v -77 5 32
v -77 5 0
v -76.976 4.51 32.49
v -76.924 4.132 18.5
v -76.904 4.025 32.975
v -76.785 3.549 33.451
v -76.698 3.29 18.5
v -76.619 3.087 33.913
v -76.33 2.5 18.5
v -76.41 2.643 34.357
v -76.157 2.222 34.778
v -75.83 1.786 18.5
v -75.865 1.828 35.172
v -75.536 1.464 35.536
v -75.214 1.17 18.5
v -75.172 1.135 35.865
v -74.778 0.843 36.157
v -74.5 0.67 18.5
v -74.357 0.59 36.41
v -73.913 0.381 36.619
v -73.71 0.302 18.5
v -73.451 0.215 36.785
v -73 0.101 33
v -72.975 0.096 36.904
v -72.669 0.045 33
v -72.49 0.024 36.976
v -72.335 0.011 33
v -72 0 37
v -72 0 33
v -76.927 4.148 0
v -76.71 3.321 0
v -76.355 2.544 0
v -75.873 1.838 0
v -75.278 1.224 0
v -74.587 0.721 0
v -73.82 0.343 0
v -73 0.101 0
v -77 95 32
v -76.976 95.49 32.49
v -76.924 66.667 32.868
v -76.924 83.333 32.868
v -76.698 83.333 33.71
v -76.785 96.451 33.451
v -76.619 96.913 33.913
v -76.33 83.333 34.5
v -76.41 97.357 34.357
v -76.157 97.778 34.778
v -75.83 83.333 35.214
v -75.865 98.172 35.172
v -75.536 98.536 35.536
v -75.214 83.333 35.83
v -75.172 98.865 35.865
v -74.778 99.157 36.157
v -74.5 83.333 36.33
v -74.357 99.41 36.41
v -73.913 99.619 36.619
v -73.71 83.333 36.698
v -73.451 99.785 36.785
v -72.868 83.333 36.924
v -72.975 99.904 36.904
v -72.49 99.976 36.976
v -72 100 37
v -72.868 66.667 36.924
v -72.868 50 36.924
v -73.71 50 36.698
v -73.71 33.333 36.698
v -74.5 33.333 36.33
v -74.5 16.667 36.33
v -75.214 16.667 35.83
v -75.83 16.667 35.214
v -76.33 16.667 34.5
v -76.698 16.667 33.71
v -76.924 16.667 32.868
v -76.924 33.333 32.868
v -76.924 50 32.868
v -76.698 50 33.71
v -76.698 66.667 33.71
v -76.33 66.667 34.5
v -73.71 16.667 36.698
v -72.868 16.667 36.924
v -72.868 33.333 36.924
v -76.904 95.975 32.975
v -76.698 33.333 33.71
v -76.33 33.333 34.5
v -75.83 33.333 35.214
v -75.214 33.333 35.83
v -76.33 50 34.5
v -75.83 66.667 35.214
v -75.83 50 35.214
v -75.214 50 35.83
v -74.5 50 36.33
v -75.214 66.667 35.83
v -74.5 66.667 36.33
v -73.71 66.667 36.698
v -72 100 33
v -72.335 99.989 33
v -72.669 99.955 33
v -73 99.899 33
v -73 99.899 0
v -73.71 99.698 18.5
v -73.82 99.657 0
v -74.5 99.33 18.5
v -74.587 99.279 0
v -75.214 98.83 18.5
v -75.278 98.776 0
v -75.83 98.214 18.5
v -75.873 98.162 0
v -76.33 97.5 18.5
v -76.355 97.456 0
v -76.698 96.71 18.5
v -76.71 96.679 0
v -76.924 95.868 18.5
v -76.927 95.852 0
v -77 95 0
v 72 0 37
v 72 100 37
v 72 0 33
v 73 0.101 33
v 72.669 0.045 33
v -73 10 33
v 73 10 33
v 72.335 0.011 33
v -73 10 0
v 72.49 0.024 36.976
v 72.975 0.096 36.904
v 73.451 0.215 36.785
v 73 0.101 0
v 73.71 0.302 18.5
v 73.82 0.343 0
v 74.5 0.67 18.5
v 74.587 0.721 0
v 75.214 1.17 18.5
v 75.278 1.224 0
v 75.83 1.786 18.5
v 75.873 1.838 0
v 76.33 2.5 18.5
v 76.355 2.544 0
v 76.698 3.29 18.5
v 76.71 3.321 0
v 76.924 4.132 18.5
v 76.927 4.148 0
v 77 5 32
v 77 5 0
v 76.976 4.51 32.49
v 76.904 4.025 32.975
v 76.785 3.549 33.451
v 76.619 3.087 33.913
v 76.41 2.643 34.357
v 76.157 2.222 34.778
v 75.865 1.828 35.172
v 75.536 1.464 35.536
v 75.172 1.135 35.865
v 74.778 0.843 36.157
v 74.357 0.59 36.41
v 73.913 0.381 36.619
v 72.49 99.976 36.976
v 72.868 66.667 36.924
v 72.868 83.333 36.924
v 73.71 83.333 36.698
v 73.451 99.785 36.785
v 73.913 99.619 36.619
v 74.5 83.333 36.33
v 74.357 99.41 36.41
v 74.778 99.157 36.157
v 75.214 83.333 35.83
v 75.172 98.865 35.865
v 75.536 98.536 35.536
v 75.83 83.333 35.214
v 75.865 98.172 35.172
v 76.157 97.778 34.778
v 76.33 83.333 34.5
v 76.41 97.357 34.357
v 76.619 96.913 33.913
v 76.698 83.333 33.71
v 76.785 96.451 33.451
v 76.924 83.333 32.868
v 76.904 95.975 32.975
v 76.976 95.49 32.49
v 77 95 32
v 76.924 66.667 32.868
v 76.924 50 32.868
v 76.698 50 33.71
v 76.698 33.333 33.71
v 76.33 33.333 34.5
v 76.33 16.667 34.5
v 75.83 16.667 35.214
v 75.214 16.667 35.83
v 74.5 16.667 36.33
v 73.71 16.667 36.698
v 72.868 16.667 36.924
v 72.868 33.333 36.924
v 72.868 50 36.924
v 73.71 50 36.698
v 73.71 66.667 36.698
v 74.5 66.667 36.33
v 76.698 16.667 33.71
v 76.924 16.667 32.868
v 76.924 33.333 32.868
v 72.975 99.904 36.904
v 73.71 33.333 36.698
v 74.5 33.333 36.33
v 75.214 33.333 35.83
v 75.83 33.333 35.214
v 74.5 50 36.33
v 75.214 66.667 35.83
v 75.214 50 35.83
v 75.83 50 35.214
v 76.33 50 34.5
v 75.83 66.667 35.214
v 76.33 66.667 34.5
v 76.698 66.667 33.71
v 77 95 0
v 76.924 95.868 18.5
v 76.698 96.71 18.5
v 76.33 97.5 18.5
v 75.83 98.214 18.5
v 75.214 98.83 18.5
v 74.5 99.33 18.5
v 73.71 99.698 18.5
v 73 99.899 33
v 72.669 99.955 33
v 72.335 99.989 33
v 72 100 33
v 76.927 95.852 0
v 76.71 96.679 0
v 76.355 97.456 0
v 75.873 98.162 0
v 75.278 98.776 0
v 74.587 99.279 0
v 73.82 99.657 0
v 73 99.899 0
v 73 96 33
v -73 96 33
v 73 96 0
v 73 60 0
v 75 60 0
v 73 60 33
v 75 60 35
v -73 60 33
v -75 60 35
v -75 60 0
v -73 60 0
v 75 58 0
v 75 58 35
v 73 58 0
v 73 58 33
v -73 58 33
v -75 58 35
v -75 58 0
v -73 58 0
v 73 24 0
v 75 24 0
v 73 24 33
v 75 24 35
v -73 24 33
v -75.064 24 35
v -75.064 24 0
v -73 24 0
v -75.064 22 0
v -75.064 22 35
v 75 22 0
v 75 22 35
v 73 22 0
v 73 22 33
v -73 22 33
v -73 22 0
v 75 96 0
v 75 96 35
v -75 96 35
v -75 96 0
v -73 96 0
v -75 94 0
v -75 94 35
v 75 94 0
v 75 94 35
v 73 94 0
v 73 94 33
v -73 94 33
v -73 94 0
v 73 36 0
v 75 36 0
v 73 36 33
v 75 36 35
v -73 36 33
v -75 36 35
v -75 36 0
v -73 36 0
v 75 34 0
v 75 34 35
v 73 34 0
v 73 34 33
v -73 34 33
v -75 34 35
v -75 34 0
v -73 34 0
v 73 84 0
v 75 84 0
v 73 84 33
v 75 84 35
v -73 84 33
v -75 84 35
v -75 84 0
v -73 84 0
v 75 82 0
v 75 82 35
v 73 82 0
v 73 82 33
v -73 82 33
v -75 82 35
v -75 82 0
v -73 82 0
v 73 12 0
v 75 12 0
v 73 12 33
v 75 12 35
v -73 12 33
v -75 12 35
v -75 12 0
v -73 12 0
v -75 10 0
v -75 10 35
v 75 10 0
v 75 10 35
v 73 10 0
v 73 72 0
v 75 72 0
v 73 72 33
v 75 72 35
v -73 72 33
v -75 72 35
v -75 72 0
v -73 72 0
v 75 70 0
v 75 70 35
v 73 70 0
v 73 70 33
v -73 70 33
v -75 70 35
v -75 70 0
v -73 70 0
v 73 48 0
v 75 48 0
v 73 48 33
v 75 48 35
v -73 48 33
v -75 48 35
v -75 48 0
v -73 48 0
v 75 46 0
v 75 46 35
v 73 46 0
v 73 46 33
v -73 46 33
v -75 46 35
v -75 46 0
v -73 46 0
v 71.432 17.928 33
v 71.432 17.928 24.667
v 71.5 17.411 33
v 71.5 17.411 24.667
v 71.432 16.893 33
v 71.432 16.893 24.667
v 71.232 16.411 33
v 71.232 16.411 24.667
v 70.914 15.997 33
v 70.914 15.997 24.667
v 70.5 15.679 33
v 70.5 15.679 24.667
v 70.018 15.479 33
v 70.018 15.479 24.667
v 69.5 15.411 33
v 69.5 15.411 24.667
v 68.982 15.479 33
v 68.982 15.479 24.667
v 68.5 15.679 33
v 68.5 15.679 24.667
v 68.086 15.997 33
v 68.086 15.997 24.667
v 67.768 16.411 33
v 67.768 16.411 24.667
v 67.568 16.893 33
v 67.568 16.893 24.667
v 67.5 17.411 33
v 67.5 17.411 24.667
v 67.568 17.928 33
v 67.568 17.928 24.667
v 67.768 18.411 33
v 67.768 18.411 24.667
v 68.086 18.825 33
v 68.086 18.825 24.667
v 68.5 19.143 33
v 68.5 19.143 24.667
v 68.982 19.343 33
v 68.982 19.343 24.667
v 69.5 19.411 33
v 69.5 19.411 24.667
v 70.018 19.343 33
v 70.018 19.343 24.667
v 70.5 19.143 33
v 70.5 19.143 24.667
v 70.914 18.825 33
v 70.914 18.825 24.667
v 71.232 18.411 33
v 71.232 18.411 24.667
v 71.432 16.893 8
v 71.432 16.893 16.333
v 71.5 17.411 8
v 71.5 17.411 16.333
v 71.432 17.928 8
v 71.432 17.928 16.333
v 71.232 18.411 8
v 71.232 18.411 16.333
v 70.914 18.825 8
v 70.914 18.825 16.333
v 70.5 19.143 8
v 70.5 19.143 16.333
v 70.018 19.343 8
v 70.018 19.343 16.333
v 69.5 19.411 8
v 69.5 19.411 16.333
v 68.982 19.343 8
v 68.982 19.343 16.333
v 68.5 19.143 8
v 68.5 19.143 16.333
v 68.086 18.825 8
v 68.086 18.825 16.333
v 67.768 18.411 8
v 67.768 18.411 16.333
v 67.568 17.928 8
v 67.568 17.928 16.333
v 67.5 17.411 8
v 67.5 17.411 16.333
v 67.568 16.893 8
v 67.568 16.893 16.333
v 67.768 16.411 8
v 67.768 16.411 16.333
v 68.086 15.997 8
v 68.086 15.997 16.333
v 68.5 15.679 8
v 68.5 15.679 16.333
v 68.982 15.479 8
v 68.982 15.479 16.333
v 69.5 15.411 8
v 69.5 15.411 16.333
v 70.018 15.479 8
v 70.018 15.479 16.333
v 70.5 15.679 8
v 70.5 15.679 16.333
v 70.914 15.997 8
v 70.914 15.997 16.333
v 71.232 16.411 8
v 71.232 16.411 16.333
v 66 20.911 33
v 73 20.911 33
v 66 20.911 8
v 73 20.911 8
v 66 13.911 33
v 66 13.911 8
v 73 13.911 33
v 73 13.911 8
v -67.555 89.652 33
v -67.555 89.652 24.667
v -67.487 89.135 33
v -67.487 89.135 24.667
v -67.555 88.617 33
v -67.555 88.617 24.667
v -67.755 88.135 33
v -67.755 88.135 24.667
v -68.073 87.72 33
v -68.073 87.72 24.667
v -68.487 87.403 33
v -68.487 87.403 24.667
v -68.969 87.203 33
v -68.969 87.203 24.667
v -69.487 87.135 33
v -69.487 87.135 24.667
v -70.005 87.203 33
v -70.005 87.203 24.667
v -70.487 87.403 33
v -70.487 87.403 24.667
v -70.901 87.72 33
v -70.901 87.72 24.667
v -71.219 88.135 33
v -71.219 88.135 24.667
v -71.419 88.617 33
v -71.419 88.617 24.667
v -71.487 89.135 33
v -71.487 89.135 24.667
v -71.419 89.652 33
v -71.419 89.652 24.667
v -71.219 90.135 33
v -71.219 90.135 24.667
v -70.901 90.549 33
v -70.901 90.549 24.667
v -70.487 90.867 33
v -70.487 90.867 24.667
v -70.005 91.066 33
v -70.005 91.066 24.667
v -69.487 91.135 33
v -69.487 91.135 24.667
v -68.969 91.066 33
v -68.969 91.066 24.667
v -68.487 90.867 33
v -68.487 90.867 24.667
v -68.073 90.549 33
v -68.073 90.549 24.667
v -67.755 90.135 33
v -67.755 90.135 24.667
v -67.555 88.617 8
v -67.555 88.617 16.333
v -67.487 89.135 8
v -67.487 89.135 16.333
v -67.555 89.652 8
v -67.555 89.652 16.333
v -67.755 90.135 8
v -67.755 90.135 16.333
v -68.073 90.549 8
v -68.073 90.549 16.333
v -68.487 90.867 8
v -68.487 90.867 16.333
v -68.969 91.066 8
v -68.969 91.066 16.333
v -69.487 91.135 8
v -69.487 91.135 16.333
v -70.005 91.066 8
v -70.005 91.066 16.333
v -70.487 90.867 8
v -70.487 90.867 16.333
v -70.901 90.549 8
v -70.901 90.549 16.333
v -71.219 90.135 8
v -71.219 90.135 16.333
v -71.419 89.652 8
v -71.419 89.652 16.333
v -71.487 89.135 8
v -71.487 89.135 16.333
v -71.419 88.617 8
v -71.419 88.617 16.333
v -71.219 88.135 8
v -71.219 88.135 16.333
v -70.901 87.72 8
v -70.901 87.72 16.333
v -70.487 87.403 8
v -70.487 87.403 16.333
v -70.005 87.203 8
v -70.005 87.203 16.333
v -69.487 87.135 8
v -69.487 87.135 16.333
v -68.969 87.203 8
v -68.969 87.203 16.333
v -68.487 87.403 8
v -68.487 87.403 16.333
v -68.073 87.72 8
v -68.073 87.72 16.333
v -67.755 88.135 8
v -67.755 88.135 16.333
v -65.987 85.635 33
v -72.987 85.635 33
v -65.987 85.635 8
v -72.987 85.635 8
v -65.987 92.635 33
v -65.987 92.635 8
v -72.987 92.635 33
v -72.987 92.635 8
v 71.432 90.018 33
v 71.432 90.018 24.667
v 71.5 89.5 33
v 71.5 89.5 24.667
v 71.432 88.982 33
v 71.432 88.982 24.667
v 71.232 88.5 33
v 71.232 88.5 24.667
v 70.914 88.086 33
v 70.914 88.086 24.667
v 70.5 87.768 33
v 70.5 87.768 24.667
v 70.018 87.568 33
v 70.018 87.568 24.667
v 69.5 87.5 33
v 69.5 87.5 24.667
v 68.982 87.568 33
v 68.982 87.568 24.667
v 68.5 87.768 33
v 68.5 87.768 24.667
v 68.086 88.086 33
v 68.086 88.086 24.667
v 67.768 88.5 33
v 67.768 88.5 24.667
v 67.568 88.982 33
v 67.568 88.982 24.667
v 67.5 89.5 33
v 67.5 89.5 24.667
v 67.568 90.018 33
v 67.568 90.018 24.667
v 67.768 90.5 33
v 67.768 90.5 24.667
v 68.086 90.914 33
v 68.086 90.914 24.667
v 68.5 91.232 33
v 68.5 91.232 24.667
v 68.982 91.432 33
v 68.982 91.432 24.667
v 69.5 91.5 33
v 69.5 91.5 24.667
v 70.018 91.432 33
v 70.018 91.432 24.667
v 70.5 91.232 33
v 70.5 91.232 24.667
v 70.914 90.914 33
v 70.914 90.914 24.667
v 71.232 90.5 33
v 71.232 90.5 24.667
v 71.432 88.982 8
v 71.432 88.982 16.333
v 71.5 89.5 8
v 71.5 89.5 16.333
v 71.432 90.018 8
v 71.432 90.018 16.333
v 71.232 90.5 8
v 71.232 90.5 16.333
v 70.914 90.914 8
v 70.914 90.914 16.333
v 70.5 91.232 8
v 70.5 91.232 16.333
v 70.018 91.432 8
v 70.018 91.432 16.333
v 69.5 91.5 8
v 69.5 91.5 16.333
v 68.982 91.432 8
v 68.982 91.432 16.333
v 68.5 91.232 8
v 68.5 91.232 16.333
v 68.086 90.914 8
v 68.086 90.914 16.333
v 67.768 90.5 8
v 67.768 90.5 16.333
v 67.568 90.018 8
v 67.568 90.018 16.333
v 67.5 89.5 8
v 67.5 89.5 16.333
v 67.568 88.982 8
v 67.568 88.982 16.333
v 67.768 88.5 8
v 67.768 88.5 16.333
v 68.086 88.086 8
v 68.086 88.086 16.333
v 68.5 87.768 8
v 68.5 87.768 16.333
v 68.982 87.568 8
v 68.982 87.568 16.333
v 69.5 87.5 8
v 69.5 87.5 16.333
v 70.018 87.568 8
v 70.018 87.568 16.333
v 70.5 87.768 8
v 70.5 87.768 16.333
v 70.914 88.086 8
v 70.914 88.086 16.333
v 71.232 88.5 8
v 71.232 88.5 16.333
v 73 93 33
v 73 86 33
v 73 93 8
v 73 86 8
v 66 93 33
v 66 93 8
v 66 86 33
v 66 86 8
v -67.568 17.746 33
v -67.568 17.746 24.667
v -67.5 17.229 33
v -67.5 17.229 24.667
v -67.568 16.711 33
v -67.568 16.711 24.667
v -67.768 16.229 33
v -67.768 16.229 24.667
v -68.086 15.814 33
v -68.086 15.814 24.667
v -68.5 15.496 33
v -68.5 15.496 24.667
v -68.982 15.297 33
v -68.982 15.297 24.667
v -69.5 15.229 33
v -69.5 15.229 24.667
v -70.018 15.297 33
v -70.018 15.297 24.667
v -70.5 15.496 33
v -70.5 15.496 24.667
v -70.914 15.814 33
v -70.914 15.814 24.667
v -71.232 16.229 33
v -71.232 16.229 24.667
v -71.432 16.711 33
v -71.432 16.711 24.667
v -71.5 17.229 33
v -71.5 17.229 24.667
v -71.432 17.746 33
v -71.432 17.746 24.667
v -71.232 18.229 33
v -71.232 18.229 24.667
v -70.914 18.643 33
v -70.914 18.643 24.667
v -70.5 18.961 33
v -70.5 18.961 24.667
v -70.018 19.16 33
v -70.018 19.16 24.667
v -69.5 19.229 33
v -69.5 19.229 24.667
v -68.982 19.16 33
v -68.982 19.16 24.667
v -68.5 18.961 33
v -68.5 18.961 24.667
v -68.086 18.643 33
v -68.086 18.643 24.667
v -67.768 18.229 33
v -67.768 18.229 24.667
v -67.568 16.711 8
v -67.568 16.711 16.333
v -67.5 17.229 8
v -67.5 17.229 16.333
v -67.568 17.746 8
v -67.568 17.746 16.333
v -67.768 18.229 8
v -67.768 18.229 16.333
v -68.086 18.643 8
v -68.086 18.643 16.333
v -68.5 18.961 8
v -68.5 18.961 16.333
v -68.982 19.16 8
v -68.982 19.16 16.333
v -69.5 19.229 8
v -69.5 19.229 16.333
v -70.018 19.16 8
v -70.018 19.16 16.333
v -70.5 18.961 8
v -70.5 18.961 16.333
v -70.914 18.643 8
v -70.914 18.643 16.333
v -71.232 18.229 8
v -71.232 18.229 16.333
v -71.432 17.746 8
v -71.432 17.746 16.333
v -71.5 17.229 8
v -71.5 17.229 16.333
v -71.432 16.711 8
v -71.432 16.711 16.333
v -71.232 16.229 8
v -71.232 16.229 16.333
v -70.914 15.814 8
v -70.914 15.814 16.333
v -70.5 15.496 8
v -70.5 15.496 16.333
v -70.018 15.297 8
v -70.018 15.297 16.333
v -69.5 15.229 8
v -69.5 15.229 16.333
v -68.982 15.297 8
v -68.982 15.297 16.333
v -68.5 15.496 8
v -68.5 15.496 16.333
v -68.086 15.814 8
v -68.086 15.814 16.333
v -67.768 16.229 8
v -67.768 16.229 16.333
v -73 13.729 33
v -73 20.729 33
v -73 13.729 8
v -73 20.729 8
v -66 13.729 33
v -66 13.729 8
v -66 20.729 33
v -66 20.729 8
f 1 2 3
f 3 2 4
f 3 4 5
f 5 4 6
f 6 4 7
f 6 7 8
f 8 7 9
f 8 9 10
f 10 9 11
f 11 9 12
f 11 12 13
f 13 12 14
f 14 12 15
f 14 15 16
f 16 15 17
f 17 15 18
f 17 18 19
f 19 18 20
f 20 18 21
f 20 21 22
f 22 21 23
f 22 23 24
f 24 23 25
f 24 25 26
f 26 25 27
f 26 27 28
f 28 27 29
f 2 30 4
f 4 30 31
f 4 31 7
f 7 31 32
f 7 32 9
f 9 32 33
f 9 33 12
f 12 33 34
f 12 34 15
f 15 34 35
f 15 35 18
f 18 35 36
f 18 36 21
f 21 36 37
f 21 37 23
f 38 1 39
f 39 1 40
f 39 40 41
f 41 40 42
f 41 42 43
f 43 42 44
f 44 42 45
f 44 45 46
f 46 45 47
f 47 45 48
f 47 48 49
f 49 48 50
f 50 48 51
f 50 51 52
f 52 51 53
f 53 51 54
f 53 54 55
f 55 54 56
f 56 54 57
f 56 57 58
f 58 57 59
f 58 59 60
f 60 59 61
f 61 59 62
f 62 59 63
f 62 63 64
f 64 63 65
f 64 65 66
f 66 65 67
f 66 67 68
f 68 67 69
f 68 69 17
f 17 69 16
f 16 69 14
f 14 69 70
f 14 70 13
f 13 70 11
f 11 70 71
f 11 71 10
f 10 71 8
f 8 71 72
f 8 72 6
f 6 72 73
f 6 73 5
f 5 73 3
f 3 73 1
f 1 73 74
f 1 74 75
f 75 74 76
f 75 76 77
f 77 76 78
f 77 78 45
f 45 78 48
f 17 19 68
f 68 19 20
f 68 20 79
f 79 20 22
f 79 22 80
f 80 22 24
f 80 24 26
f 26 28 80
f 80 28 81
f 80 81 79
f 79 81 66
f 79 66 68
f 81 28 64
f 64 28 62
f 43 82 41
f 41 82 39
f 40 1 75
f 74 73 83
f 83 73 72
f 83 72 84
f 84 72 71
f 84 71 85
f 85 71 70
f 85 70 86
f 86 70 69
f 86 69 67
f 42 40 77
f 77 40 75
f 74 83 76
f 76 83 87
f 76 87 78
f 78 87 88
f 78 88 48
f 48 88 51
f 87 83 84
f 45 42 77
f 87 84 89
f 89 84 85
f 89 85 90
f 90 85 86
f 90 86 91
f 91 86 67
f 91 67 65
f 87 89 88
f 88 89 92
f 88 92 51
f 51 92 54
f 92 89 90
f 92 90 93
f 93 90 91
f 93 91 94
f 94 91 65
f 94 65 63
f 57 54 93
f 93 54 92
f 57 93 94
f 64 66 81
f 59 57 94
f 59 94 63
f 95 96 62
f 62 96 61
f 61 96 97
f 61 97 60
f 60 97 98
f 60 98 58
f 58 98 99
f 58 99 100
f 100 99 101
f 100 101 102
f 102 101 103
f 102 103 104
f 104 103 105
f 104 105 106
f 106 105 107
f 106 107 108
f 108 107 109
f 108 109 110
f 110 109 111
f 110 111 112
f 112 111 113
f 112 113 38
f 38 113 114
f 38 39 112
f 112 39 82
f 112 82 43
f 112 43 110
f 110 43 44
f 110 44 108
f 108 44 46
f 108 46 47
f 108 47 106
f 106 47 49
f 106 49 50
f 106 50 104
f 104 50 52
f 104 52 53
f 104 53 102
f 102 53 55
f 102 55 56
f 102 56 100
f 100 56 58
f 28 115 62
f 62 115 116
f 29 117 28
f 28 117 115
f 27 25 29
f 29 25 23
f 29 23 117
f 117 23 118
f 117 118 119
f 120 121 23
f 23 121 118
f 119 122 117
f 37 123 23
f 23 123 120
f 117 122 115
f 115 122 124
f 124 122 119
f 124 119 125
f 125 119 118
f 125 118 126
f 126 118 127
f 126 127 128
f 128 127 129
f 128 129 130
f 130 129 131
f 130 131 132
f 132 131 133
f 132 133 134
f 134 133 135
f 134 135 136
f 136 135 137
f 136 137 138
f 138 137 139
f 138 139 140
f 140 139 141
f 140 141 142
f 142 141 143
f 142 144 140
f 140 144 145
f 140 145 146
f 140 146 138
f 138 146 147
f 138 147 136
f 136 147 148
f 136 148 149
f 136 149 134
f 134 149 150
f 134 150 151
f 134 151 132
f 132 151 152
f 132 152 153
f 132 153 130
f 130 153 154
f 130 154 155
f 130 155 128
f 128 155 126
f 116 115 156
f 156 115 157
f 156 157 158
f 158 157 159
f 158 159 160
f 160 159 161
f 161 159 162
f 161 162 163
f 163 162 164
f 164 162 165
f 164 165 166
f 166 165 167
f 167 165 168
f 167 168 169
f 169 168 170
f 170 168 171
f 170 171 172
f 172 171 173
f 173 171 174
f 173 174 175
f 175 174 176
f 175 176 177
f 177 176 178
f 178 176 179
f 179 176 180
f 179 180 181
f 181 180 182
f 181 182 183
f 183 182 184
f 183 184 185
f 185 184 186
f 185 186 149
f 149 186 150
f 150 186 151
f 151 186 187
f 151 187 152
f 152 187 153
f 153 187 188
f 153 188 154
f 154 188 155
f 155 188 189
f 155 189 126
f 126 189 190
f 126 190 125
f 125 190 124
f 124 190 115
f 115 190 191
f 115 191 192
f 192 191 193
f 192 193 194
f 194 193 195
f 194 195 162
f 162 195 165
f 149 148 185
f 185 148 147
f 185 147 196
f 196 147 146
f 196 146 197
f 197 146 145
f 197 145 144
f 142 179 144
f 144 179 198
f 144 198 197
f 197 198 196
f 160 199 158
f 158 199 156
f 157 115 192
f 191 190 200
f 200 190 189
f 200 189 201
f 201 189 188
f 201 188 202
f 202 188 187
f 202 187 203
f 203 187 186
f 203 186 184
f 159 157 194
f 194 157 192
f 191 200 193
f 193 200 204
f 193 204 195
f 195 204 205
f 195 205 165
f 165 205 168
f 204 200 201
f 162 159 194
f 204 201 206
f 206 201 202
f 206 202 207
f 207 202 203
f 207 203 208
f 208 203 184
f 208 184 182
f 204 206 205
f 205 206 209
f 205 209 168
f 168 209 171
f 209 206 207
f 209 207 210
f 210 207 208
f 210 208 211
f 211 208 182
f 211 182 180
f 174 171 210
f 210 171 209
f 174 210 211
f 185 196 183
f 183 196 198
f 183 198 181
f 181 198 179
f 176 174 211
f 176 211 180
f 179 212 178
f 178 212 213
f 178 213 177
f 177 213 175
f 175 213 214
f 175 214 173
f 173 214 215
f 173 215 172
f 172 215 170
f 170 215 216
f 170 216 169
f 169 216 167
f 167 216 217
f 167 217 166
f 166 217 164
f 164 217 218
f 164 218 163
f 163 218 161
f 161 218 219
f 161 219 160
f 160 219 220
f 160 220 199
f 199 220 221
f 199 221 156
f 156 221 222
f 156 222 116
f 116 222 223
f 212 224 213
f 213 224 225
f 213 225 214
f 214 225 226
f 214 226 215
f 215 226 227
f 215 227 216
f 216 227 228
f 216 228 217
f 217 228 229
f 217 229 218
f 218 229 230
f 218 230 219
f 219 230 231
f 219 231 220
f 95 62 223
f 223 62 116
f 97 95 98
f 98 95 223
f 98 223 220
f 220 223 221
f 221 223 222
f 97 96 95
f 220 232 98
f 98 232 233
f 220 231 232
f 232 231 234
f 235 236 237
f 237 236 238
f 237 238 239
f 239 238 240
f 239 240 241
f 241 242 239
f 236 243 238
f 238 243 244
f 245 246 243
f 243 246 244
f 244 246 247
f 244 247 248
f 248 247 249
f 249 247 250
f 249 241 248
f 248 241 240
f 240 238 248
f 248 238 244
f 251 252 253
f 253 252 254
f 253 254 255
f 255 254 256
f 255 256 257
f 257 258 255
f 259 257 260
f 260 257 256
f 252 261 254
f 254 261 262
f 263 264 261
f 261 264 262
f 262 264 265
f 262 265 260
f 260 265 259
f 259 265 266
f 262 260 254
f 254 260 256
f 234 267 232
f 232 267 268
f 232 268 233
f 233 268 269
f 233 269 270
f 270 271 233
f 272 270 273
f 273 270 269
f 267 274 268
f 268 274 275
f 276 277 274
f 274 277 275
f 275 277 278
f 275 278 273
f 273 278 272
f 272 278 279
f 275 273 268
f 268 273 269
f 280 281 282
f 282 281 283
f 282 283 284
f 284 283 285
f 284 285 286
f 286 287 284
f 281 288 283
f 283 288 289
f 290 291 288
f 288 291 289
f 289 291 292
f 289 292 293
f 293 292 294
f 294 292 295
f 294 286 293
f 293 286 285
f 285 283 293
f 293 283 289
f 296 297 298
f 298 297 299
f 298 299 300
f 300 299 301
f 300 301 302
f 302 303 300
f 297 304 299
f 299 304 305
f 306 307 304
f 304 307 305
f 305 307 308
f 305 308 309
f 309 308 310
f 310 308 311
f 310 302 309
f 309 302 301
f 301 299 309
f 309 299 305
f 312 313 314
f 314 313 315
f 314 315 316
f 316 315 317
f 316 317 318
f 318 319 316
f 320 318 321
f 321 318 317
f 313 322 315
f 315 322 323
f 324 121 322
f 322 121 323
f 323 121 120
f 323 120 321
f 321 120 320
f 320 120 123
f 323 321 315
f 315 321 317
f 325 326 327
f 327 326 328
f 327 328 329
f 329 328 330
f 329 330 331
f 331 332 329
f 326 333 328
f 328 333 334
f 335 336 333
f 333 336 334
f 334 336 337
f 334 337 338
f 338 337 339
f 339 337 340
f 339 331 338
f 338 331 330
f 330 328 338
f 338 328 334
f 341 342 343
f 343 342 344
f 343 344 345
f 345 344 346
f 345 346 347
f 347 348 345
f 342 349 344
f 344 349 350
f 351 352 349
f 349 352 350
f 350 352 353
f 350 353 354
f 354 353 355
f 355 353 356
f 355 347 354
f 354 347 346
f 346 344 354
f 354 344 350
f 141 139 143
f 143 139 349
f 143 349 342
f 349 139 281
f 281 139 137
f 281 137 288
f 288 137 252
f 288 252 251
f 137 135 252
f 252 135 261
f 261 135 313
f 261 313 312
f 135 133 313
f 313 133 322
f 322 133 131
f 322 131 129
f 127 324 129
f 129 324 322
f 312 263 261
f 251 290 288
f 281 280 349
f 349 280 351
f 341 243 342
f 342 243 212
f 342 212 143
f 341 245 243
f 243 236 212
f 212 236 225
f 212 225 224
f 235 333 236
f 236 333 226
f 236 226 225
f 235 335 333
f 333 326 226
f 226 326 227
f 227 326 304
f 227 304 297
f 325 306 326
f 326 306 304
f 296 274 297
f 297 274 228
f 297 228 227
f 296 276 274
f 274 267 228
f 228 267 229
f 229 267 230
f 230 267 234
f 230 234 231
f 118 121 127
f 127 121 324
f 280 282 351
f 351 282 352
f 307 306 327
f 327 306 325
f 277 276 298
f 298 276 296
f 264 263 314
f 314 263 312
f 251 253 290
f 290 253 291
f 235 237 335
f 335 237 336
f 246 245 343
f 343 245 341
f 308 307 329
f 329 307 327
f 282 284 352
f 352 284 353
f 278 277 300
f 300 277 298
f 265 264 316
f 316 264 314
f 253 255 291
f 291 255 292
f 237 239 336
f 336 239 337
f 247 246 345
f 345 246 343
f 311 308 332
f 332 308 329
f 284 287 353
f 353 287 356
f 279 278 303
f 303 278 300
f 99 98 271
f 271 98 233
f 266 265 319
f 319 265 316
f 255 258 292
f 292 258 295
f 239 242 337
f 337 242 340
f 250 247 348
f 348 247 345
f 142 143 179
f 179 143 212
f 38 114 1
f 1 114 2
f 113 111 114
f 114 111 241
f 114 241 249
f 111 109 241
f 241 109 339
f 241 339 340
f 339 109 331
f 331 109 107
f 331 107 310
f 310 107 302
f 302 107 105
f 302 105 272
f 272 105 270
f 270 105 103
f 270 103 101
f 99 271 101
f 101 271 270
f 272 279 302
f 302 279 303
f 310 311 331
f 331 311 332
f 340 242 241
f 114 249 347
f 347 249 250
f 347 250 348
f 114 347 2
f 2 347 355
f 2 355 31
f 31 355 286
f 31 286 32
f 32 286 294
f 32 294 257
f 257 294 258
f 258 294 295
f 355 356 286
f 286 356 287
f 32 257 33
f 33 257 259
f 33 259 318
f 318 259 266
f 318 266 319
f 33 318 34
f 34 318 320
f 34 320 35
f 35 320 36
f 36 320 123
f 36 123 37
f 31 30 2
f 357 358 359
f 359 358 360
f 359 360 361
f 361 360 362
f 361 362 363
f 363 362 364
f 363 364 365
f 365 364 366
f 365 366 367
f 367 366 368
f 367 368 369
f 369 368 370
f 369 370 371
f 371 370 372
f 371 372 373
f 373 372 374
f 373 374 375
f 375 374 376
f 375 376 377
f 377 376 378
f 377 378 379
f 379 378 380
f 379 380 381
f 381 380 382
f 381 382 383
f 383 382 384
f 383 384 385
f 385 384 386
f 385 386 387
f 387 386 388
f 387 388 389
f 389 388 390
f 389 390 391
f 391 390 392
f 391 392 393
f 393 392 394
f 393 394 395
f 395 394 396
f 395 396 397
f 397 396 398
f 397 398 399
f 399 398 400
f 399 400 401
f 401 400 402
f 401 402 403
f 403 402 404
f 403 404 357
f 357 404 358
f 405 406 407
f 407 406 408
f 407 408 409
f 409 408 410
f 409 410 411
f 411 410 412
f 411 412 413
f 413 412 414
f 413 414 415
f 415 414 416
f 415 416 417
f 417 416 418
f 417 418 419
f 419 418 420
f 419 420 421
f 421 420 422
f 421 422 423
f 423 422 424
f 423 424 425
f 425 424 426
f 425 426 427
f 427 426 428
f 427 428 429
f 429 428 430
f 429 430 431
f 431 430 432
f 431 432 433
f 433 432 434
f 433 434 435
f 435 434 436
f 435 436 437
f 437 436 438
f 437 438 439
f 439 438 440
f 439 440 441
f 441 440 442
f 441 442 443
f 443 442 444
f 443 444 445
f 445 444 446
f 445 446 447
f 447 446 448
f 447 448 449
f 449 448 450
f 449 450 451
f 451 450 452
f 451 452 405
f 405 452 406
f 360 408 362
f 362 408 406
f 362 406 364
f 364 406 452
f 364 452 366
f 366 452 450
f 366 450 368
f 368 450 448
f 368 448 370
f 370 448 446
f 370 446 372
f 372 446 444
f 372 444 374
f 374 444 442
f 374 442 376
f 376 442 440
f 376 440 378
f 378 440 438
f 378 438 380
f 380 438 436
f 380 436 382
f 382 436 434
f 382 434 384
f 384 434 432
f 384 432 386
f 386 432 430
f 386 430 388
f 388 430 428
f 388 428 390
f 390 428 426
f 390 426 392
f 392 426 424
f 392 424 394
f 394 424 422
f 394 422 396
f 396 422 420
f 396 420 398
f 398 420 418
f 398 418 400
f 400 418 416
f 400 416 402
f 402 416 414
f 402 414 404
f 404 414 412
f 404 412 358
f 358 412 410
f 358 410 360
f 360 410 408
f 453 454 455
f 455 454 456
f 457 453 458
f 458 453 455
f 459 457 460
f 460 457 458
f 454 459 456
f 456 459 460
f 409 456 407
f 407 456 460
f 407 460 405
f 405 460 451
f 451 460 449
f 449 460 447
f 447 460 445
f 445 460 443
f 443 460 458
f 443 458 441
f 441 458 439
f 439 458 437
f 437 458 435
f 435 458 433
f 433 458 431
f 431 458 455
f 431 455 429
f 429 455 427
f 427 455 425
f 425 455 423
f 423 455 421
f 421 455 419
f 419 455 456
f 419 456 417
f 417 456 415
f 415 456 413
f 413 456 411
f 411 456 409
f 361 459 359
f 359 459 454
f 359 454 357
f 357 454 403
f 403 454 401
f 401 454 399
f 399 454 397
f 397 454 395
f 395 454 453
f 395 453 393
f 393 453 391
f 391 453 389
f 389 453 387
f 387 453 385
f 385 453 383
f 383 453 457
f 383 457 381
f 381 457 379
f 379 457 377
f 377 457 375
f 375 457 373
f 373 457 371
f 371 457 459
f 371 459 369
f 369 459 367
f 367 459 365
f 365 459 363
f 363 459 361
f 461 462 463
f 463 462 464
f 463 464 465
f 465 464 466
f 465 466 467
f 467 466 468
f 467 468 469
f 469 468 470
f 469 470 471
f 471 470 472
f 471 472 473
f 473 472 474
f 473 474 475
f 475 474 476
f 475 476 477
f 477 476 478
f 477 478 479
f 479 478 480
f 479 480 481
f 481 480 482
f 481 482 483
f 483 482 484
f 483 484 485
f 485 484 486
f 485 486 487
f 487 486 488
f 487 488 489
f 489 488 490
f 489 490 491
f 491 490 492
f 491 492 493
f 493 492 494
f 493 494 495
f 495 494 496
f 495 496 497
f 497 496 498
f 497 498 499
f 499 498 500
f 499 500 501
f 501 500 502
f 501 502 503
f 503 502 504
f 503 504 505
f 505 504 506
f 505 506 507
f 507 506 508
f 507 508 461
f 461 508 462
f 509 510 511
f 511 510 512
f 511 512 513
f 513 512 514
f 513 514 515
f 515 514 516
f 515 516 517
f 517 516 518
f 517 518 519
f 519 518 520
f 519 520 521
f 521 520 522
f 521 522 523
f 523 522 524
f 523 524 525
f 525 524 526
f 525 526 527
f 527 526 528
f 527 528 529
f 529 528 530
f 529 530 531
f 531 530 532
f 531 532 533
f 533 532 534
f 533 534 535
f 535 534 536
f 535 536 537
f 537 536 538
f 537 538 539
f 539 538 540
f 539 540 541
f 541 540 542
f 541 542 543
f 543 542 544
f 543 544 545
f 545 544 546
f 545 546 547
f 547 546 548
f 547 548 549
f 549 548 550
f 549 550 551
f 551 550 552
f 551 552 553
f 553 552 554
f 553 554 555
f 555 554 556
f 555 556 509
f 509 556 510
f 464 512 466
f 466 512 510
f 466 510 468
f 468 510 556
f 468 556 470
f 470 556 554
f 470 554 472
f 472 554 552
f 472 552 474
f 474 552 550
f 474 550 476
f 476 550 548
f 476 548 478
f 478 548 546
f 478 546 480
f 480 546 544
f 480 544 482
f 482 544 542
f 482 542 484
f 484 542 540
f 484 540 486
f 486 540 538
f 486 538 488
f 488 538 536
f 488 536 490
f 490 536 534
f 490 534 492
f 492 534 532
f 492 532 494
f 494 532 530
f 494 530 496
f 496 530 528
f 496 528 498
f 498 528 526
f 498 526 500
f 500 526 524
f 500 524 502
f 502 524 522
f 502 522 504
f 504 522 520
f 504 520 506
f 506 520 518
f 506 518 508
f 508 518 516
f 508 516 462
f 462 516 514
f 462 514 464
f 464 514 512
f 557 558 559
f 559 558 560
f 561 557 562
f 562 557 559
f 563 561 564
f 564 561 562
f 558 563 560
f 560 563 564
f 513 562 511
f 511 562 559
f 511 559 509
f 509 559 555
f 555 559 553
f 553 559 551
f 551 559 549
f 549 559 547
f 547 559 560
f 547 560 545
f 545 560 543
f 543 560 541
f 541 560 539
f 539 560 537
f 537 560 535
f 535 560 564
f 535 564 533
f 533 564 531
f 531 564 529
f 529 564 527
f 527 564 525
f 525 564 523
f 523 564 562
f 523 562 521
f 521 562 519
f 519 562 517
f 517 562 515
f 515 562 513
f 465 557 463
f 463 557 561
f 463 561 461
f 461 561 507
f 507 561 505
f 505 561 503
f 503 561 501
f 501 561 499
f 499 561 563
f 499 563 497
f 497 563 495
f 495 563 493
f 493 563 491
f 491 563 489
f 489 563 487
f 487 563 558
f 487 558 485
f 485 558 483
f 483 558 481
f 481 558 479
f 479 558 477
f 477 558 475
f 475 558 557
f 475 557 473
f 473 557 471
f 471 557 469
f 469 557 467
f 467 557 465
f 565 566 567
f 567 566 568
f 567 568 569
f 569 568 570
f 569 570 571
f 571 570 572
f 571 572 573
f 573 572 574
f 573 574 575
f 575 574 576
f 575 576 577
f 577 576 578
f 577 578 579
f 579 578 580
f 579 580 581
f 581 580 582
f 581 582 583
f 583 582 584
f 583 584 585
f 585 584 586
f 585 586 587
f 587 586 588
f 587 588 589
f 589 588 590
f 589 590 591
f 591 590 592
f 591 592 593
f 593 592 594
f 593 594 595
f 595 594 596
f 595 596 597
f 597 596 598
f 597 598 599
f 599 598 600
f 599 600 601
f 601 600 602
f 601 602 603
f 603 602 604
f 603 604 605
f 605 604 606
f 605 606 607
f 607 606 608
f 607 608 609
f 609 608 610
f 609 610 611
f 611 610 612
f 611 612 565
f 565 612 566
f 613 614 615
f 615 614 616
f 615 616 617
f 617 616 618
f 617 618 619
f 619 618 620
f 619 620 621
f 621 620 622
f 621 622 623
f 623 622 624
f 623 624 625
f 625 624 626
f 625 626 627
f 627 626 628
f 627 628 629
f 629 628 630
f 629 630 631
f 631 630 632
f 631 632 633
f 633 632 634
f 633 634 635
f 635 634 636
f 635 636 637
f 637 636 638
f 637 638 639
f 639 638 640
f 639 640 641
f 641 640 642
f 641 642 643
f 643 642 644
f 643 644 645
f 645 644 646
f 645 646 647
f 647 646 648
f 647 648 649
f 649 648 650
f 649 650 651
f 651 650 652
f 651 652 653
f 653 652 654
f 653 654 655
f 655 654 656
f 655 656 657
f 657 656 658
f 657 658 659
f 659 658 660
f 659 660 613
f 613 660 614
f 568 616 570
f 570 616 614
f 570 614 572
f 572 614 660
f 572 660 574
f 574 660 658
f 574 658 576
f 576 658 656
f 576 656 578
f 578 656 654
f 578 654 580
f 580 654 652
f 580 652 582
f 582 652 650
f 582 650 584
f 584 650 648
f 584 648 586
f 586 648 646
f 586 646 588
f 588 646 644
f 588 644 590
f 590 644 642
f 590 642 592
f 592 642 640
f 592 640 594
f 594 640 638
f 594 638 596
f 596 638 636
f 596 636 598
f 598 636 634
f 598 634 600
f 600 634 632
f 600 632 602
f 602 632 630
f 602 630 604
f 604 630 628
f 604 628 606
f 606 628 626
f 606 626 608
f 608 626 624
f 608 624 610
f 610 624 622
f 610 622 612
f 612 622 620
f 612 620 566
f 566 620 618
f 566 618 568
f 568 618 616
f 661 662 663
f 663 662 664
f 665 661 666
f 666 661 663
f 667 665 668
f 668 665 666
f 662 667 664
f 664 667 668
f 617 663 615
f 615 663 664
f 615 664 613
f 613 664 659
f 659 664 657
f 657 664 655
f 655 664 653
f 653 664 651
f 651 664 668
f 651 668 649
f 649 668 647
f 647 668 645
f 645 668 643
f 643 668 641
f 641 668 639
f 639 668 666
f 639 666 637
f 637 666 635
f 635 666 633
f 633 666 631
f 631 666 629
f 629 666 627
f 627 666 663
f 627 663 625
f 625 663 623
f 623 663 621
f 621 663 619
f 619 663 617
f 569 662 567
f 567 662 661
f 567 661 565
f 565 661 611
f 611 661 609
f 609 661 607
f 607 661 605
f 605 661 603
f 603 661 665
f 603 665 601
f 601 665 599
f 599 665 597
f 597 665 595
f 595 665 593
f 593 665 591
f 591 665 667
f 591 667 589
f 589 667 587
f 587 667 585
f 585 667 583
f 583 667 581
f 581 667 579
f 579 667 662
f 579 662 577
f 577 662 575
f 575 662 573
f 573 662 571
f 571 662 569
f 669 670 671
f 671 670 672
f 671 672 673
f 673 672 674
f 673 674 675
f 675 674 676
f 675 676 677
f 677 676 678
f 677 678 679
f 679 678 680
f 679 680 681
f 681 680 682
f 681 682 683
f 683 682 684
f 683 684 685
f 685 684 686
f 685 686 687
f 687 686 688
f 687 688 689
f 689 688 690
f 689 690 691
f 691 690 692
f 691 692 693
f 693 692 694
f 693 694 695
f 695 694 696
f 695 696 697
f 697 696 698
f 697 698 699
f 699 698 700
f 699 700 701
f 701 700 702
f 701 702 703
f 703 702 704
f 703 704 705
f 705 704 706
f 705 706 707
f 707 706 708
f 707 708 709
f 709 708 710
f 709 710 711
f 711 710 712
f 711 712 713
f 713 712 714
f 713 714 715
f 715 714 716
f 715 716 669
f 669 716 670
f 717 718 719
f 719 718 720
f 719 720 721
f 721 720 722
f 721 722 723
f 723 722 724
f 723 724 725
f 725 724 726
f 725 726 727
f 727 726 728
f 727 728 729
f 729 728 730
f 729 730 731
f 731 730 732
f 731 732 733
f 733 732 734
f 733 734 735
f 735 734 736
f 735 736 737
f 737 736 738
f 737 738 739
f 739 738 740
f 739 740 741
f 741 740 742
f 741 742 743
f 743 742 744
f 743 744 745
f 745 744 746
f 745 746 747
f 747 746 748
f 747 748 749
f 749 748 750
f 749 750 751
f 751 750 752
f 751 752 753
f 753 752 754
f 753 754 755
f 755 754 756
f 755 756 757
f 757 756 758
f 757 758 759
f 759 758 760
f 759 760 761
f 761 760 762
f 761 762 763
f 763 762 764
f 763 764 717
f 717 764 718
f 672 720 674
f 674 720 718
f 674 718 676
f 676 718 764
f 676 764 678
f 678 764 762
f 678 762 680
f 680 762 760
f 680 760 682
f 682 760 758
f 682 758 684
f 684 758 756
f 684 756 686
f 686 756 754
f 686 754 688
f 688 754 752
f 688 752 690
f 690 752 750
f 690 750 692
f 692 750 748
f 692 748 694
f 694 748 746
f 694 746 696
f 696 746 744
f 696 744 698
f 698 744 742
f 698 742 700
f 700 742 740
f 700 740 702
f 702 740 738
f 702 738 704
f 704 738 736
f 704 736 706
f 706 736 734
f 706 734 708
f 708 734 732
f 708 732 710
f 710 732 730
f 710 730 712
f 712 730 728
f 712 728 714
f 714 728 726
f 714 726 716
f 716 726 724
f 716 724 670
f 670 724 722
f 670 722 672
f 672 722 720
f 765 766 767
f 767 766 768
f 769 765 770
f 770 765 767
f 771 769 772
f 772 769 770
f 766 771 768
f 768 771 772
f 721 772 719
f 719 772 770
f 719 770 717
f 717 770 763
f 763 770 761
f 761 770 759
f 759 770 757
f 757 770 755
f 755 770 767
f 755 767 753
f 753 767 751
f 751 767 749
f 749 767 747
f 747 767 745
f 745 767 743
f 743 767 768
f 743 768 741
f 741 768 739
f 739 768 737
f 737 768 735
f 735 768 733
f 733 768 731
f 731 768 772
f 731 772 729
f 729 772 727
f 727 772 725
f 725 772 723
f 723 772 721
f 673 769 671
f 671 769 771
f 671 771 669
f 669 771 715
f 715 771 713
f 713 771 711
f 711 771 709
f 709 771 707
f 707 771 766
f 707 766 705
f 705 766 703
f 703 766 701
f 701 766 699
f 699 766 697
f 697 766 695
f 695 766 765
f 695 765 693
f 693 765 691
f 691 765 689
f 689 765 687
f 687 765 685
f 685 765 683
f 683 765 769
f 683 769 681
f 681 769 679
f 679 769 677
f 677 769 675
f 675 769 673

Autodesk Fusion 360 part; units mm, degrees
sketch "Skizze1" plane through (0, 0, 0) normal (0, 1, 0) x (1, 0, 0)
  line L0 (75, 35) -> (75, -35) construction
  line L1 (75, -35) -> (-75, -35) construction
  line L2 (-75, -35) -> (-75, 35) construction
  line L3 (-75, 35) -> (75, -35) construction
  line L4 (75, 35) -> (-75, -35) construction
  line L5 (73, 33) -> (73, -33) construction
  line L6 (73, -33) -> (-73, -33) construction
  line L7 (-73, -33) -> (-73, 33) construction
  line L8 (-73, 33) -> (73, -33) construction
  line L9 (73, 33) -> (-73, -33) construction
  line L10 (77, 37) -> (77, -37) construction
  line L11 (77, -37) -> (-77, -37) construction
  line L12 (-77, -37) -> (-77, 37) construction
  line L13 (-77, 37) -> (77, -37) construction
  line L14 (77, 37) -> (-77, -37) construction
  line L15 (-77, 0) -> (-77, -37)
  line L16 (-77, -37) -> (77, -37)
  line L17 (77, -37) -> (77, 0)
  line L18 (77, 0) -> (73, 0)
  line L19 (73, -33) -> (-73, -33)
  line L20 (-73, 0) -> (-73, -33)
  line L21 (-73, 0) -> (-77, 0)
  line L22 (73, 0) -> (73, -33)
  dimension "d1" = 150
  dimension "d2" = 70
  dimension "d3" = 146
  dimension "d4" = 66
  dimension "d5" = 154
  dimension "d6" = 74
extrude "Extrusion1" add sketch "Skizze1" along normal blind 100 makes body 1
sketch "Skizze2" plane through (0, 0, 0) normal (0, 0, -1) x (-1, 0, 0)
  line L0 (-77, 0) -> (-73, 0)
  line L1 (-73, 0) -> (-73, 100)
  line L2 (-73, 100) -> (-77, 100)
  line L3 (-77, 100) -> (-77, 0)
  line L4 (-75, 12) -> (75, 12)
  line L5 (75, 12) -> (75, 10)
  line L6 (75, 10) -> (-75, 10)
  line L7 (-75, 10) -> (-75, 12)
  line L8 (-75, 24) -> (75.0643, 24)
  line L9 (75.0643, 24) -> (75.0643, 22)
  line L10 (75.0643, 22) -> (-75, 22)
  line L11 (-75, 22) -> (-75, 24)
  line L12 (-73, 0) -> (73, 0)
  line L13 (-75, 96) -> (75, 96)
  line L14 (75, 96) -> (75, 94)
  line L15 (75, 94) -> (-75, 94)
  line L16 (-75, 94) -> (-75, 96)
  line L17 (-73, 100) -> (73, 100)
  line L18 (75, 34) -> (-75, 34)
  line L19 (-75, 34) -> (-75, 36)
  line L20 (-75, 36) -> (75, 36)
  line L21 (75, 36) -> (75, 34)
  line L22 (75, 46) -> (-75, 46)
  line L23 (-75, 46) -> (-75, 48)
  line L24 (-75, 48) -> (75, 48)
  line L25 (75, 48) -> (75, 46)
  line L26 (75, 58) -> (-75, 58)
  line L27 (-75, 58) -> (-75, 60)
  line L28 (-75, 60) -> (75, 60)
  line L29 (75, 60) -> (75, 58)
  line L30 (75, 70) -> (-75, 70)
  line L31 (-75, 70) -> (-75, 72)
  line L32 (-75, 72) -> (75, 72)
  line L33 (75, 72) -> (75, 70)
  line L34 (75, 82) -> (-75, 82)
  line L35 (-75, 82) -> (-75, 84)
  line L36 (-75, 84) -> (75, 84)
  line L37 (75, 84) -> (75, 82)
  dimension "d11" = 10
  dimension "d12" = 2
  dimension "d14" = 2
  dimension "d45" = 2
  dimension "d46" = 2
  dimension "d47" = 2
  dimension "d48" = 2
  dimension "d49" = 2
  dimension "d50" = 10
  dimension "d51" = 10
  dimension "d52" = 10
  dimension "d53" = 10
  dimension "d54" = 10
  dimension "d55" = 2
  dimension "d57" = 10
  dimension "d59" = 4
extrude "Extrusion4" cut sketch "Skizze2" against normal blind 35 contours L1 L4 L6 L7 | L1 L4 L5 L6 | L1 L13 L14 L15 | L1 L13 L15 L16 | L1 L8 L10 L11 | L1 L8 L9 L10 | L1 L34 L36 L37 | L1 L34 L35 L36 | L1 L18 L19 L20 | L1 L18 L20 L21 | L1 L30 L32 L33 | L1 L30 L31 L32 | L1 L22 L23 L24 | L1 L22 L24 L25 | L1 L26 L28 L29 | L1 L26 L27 L28 bodies 1
sketch "Skizze3" plane through (0, 0, 33) normal (0, 0, -1) x (-1, 0, 0)
  line L0 (-73, 24) -> (73, 24)
  line L1 (73, 24) -> (73, 34)
  line L2 (73, 94) -> (-73, 94)
  line L3 (-73, 34) -> (-73, 24)
  line L4 (-73, 0) -> (-73, 100) construction
  line L5 (75, 94) -> (-75, 94) construction
  line L6 (73, 34) -> (-73, 34)
  line L7 (-73, 84) -> (73, 84)
  line L8 (73, 84) -> (73, 94)
  line L9 (-73, 94) -> (-73, 84)
sketch "Skizze4" plane through (0, 0, 33) normal (0, 0, -1) x (-1, 0, 0)
  line L0 (-73, 93) -> (-66, 93)
  line L1 (-66, 93) -> (-66, 86)
  line L2 (-66, 86) -> (-73, 86)
  line L3 (-73, 86) -> (-73, 93)
  line L4 (-73, 13.9107) -> (-66, 13.9107)
  line L5 (-66, 13.9107) -> (-66, 20.9107)
  line L6 (-66, 20.9107) -> (-73, 20.9107)
  line L7 (-73, 20.9107) -> (-73, 13.9107)
  line L8 (73, 13.7285) -> (66, 13.7285)
  line L9 (66, 13.7285) -> (66, 20.7285)
  line L10 (66, 20.7285) -> (73, 20.7285)
  line L11 (73, 20.7285) -> (73, 13.7285)
  line L12 (72.9869, 92.6346) -> (65.9869, 92.6346)
  line L13 (65.9869, 92.6346) -> (65.9869, 85.6346)
  line L14 (65.9869, 85.6346) -> (72.9869, 85.6346)
  line L15 (72.9869, 85.6346) -> (72.9869, 92.6346)
  dimension "d29" = 7
  dimension "d30" = 7
  dimension "d33" = 7
  dimension "d34" = 7
  dimension "d35" = 7
  dimension "d36" = 7
extrude "Extrusion5" add sketch "Skizze4" along normal blind 25 separate body makes body 2 at (73, 18.5774, 24.6667) makes body 3 at (-68.3203, 85.6346, 24.6667) makes body 4 at (70.6667, 93, 24.6667) makes body 5 at (-66, 16.0618, 24.6667)
sketch "Skizze5" plane through (0, 0, 8) normal (0, 0, -1) x (-1, 0, 0)
  line L0 (-73, 86) -> (-66, 86)
  line L1 (-66, 86) -> (-66, 93)
  line L2 (-66, 93) -> (-73, 93)
  line L3 (-73, 93) -> (-73, 86)
  circle A0 centre (-69.5, 89.5) radius 2
  dimension "d39" = 4
sketch "Skizze6" plane through (0, 0, 8) normal (0, 0, -1) x (-1, 0, 0)
  line L0 (-73, 20.9107) -> (-73, 13.9107)
  line L1 (-73, 13.9107) -> (-66, 13.9107)
  line L2 (-66, 13.9107) -> (-66, 20.9107)
  line L3 (-66, 20.9107) -> (-73, 20.9107)
  circle A0 centre (-69.5, 17.4107) radius 2
  dimension "d40" = 4
  dimension "d61" = 3.5
sketch "Skizze7" plane through (0, 0, 8) normal (0, 0, -1) x (-1, 0, 0)
  line L0 (73, 20.7285) -> (66, 20.7285)
  line L1 (66, 20.7285) -> (66, 13.7285)
  line L2 (66, 13.7285) -> (73, 13.7285)
  line L3 (73, 13.7285) -> (73, 20.7285)
  circle A0 centre (69.5, 17.2285) radius 2
  dimension "d60" = 3.5
  dimension "d64" = 4
sketch "Skizze8" plane through (0, 0, 8) normal (0, 0, -1) x (-1, 0, 0)
  line L0 (72.9869, 85.6346) -> (72.9869, 92.6346)
  line L1 (72.9869, 92.6346) -> (65.9869, 92.6346)
  line L2 (65.9869, 92.6346) -> (65.9869, 85.6346)
  line L3 (65.9869, 85.6346) -> (72.9869, 85.6346)
  circle A0 centre (69.4869, 89.1346) radius 2
  dimension "d41" = 4
extrude "Extrusion6" cut sketch "Skizze8" sketch "Skizze7" sketch "Skizze6" sketch "Skizze5" against normal blind 25 contours A0 of sketch 2 contours A0 of sketch 3 contours A0 of sketch 4 contours A0 bodies 2 3 4 5
fillet "Abrundung1" radius 5 6 edges at (77, 50, 37) (-77, 50, 37) (-77, 0, 18.5) (77, 0, 18.5) (77, 100, 18.5) (-77, 100, 18.5) on bodies 1
